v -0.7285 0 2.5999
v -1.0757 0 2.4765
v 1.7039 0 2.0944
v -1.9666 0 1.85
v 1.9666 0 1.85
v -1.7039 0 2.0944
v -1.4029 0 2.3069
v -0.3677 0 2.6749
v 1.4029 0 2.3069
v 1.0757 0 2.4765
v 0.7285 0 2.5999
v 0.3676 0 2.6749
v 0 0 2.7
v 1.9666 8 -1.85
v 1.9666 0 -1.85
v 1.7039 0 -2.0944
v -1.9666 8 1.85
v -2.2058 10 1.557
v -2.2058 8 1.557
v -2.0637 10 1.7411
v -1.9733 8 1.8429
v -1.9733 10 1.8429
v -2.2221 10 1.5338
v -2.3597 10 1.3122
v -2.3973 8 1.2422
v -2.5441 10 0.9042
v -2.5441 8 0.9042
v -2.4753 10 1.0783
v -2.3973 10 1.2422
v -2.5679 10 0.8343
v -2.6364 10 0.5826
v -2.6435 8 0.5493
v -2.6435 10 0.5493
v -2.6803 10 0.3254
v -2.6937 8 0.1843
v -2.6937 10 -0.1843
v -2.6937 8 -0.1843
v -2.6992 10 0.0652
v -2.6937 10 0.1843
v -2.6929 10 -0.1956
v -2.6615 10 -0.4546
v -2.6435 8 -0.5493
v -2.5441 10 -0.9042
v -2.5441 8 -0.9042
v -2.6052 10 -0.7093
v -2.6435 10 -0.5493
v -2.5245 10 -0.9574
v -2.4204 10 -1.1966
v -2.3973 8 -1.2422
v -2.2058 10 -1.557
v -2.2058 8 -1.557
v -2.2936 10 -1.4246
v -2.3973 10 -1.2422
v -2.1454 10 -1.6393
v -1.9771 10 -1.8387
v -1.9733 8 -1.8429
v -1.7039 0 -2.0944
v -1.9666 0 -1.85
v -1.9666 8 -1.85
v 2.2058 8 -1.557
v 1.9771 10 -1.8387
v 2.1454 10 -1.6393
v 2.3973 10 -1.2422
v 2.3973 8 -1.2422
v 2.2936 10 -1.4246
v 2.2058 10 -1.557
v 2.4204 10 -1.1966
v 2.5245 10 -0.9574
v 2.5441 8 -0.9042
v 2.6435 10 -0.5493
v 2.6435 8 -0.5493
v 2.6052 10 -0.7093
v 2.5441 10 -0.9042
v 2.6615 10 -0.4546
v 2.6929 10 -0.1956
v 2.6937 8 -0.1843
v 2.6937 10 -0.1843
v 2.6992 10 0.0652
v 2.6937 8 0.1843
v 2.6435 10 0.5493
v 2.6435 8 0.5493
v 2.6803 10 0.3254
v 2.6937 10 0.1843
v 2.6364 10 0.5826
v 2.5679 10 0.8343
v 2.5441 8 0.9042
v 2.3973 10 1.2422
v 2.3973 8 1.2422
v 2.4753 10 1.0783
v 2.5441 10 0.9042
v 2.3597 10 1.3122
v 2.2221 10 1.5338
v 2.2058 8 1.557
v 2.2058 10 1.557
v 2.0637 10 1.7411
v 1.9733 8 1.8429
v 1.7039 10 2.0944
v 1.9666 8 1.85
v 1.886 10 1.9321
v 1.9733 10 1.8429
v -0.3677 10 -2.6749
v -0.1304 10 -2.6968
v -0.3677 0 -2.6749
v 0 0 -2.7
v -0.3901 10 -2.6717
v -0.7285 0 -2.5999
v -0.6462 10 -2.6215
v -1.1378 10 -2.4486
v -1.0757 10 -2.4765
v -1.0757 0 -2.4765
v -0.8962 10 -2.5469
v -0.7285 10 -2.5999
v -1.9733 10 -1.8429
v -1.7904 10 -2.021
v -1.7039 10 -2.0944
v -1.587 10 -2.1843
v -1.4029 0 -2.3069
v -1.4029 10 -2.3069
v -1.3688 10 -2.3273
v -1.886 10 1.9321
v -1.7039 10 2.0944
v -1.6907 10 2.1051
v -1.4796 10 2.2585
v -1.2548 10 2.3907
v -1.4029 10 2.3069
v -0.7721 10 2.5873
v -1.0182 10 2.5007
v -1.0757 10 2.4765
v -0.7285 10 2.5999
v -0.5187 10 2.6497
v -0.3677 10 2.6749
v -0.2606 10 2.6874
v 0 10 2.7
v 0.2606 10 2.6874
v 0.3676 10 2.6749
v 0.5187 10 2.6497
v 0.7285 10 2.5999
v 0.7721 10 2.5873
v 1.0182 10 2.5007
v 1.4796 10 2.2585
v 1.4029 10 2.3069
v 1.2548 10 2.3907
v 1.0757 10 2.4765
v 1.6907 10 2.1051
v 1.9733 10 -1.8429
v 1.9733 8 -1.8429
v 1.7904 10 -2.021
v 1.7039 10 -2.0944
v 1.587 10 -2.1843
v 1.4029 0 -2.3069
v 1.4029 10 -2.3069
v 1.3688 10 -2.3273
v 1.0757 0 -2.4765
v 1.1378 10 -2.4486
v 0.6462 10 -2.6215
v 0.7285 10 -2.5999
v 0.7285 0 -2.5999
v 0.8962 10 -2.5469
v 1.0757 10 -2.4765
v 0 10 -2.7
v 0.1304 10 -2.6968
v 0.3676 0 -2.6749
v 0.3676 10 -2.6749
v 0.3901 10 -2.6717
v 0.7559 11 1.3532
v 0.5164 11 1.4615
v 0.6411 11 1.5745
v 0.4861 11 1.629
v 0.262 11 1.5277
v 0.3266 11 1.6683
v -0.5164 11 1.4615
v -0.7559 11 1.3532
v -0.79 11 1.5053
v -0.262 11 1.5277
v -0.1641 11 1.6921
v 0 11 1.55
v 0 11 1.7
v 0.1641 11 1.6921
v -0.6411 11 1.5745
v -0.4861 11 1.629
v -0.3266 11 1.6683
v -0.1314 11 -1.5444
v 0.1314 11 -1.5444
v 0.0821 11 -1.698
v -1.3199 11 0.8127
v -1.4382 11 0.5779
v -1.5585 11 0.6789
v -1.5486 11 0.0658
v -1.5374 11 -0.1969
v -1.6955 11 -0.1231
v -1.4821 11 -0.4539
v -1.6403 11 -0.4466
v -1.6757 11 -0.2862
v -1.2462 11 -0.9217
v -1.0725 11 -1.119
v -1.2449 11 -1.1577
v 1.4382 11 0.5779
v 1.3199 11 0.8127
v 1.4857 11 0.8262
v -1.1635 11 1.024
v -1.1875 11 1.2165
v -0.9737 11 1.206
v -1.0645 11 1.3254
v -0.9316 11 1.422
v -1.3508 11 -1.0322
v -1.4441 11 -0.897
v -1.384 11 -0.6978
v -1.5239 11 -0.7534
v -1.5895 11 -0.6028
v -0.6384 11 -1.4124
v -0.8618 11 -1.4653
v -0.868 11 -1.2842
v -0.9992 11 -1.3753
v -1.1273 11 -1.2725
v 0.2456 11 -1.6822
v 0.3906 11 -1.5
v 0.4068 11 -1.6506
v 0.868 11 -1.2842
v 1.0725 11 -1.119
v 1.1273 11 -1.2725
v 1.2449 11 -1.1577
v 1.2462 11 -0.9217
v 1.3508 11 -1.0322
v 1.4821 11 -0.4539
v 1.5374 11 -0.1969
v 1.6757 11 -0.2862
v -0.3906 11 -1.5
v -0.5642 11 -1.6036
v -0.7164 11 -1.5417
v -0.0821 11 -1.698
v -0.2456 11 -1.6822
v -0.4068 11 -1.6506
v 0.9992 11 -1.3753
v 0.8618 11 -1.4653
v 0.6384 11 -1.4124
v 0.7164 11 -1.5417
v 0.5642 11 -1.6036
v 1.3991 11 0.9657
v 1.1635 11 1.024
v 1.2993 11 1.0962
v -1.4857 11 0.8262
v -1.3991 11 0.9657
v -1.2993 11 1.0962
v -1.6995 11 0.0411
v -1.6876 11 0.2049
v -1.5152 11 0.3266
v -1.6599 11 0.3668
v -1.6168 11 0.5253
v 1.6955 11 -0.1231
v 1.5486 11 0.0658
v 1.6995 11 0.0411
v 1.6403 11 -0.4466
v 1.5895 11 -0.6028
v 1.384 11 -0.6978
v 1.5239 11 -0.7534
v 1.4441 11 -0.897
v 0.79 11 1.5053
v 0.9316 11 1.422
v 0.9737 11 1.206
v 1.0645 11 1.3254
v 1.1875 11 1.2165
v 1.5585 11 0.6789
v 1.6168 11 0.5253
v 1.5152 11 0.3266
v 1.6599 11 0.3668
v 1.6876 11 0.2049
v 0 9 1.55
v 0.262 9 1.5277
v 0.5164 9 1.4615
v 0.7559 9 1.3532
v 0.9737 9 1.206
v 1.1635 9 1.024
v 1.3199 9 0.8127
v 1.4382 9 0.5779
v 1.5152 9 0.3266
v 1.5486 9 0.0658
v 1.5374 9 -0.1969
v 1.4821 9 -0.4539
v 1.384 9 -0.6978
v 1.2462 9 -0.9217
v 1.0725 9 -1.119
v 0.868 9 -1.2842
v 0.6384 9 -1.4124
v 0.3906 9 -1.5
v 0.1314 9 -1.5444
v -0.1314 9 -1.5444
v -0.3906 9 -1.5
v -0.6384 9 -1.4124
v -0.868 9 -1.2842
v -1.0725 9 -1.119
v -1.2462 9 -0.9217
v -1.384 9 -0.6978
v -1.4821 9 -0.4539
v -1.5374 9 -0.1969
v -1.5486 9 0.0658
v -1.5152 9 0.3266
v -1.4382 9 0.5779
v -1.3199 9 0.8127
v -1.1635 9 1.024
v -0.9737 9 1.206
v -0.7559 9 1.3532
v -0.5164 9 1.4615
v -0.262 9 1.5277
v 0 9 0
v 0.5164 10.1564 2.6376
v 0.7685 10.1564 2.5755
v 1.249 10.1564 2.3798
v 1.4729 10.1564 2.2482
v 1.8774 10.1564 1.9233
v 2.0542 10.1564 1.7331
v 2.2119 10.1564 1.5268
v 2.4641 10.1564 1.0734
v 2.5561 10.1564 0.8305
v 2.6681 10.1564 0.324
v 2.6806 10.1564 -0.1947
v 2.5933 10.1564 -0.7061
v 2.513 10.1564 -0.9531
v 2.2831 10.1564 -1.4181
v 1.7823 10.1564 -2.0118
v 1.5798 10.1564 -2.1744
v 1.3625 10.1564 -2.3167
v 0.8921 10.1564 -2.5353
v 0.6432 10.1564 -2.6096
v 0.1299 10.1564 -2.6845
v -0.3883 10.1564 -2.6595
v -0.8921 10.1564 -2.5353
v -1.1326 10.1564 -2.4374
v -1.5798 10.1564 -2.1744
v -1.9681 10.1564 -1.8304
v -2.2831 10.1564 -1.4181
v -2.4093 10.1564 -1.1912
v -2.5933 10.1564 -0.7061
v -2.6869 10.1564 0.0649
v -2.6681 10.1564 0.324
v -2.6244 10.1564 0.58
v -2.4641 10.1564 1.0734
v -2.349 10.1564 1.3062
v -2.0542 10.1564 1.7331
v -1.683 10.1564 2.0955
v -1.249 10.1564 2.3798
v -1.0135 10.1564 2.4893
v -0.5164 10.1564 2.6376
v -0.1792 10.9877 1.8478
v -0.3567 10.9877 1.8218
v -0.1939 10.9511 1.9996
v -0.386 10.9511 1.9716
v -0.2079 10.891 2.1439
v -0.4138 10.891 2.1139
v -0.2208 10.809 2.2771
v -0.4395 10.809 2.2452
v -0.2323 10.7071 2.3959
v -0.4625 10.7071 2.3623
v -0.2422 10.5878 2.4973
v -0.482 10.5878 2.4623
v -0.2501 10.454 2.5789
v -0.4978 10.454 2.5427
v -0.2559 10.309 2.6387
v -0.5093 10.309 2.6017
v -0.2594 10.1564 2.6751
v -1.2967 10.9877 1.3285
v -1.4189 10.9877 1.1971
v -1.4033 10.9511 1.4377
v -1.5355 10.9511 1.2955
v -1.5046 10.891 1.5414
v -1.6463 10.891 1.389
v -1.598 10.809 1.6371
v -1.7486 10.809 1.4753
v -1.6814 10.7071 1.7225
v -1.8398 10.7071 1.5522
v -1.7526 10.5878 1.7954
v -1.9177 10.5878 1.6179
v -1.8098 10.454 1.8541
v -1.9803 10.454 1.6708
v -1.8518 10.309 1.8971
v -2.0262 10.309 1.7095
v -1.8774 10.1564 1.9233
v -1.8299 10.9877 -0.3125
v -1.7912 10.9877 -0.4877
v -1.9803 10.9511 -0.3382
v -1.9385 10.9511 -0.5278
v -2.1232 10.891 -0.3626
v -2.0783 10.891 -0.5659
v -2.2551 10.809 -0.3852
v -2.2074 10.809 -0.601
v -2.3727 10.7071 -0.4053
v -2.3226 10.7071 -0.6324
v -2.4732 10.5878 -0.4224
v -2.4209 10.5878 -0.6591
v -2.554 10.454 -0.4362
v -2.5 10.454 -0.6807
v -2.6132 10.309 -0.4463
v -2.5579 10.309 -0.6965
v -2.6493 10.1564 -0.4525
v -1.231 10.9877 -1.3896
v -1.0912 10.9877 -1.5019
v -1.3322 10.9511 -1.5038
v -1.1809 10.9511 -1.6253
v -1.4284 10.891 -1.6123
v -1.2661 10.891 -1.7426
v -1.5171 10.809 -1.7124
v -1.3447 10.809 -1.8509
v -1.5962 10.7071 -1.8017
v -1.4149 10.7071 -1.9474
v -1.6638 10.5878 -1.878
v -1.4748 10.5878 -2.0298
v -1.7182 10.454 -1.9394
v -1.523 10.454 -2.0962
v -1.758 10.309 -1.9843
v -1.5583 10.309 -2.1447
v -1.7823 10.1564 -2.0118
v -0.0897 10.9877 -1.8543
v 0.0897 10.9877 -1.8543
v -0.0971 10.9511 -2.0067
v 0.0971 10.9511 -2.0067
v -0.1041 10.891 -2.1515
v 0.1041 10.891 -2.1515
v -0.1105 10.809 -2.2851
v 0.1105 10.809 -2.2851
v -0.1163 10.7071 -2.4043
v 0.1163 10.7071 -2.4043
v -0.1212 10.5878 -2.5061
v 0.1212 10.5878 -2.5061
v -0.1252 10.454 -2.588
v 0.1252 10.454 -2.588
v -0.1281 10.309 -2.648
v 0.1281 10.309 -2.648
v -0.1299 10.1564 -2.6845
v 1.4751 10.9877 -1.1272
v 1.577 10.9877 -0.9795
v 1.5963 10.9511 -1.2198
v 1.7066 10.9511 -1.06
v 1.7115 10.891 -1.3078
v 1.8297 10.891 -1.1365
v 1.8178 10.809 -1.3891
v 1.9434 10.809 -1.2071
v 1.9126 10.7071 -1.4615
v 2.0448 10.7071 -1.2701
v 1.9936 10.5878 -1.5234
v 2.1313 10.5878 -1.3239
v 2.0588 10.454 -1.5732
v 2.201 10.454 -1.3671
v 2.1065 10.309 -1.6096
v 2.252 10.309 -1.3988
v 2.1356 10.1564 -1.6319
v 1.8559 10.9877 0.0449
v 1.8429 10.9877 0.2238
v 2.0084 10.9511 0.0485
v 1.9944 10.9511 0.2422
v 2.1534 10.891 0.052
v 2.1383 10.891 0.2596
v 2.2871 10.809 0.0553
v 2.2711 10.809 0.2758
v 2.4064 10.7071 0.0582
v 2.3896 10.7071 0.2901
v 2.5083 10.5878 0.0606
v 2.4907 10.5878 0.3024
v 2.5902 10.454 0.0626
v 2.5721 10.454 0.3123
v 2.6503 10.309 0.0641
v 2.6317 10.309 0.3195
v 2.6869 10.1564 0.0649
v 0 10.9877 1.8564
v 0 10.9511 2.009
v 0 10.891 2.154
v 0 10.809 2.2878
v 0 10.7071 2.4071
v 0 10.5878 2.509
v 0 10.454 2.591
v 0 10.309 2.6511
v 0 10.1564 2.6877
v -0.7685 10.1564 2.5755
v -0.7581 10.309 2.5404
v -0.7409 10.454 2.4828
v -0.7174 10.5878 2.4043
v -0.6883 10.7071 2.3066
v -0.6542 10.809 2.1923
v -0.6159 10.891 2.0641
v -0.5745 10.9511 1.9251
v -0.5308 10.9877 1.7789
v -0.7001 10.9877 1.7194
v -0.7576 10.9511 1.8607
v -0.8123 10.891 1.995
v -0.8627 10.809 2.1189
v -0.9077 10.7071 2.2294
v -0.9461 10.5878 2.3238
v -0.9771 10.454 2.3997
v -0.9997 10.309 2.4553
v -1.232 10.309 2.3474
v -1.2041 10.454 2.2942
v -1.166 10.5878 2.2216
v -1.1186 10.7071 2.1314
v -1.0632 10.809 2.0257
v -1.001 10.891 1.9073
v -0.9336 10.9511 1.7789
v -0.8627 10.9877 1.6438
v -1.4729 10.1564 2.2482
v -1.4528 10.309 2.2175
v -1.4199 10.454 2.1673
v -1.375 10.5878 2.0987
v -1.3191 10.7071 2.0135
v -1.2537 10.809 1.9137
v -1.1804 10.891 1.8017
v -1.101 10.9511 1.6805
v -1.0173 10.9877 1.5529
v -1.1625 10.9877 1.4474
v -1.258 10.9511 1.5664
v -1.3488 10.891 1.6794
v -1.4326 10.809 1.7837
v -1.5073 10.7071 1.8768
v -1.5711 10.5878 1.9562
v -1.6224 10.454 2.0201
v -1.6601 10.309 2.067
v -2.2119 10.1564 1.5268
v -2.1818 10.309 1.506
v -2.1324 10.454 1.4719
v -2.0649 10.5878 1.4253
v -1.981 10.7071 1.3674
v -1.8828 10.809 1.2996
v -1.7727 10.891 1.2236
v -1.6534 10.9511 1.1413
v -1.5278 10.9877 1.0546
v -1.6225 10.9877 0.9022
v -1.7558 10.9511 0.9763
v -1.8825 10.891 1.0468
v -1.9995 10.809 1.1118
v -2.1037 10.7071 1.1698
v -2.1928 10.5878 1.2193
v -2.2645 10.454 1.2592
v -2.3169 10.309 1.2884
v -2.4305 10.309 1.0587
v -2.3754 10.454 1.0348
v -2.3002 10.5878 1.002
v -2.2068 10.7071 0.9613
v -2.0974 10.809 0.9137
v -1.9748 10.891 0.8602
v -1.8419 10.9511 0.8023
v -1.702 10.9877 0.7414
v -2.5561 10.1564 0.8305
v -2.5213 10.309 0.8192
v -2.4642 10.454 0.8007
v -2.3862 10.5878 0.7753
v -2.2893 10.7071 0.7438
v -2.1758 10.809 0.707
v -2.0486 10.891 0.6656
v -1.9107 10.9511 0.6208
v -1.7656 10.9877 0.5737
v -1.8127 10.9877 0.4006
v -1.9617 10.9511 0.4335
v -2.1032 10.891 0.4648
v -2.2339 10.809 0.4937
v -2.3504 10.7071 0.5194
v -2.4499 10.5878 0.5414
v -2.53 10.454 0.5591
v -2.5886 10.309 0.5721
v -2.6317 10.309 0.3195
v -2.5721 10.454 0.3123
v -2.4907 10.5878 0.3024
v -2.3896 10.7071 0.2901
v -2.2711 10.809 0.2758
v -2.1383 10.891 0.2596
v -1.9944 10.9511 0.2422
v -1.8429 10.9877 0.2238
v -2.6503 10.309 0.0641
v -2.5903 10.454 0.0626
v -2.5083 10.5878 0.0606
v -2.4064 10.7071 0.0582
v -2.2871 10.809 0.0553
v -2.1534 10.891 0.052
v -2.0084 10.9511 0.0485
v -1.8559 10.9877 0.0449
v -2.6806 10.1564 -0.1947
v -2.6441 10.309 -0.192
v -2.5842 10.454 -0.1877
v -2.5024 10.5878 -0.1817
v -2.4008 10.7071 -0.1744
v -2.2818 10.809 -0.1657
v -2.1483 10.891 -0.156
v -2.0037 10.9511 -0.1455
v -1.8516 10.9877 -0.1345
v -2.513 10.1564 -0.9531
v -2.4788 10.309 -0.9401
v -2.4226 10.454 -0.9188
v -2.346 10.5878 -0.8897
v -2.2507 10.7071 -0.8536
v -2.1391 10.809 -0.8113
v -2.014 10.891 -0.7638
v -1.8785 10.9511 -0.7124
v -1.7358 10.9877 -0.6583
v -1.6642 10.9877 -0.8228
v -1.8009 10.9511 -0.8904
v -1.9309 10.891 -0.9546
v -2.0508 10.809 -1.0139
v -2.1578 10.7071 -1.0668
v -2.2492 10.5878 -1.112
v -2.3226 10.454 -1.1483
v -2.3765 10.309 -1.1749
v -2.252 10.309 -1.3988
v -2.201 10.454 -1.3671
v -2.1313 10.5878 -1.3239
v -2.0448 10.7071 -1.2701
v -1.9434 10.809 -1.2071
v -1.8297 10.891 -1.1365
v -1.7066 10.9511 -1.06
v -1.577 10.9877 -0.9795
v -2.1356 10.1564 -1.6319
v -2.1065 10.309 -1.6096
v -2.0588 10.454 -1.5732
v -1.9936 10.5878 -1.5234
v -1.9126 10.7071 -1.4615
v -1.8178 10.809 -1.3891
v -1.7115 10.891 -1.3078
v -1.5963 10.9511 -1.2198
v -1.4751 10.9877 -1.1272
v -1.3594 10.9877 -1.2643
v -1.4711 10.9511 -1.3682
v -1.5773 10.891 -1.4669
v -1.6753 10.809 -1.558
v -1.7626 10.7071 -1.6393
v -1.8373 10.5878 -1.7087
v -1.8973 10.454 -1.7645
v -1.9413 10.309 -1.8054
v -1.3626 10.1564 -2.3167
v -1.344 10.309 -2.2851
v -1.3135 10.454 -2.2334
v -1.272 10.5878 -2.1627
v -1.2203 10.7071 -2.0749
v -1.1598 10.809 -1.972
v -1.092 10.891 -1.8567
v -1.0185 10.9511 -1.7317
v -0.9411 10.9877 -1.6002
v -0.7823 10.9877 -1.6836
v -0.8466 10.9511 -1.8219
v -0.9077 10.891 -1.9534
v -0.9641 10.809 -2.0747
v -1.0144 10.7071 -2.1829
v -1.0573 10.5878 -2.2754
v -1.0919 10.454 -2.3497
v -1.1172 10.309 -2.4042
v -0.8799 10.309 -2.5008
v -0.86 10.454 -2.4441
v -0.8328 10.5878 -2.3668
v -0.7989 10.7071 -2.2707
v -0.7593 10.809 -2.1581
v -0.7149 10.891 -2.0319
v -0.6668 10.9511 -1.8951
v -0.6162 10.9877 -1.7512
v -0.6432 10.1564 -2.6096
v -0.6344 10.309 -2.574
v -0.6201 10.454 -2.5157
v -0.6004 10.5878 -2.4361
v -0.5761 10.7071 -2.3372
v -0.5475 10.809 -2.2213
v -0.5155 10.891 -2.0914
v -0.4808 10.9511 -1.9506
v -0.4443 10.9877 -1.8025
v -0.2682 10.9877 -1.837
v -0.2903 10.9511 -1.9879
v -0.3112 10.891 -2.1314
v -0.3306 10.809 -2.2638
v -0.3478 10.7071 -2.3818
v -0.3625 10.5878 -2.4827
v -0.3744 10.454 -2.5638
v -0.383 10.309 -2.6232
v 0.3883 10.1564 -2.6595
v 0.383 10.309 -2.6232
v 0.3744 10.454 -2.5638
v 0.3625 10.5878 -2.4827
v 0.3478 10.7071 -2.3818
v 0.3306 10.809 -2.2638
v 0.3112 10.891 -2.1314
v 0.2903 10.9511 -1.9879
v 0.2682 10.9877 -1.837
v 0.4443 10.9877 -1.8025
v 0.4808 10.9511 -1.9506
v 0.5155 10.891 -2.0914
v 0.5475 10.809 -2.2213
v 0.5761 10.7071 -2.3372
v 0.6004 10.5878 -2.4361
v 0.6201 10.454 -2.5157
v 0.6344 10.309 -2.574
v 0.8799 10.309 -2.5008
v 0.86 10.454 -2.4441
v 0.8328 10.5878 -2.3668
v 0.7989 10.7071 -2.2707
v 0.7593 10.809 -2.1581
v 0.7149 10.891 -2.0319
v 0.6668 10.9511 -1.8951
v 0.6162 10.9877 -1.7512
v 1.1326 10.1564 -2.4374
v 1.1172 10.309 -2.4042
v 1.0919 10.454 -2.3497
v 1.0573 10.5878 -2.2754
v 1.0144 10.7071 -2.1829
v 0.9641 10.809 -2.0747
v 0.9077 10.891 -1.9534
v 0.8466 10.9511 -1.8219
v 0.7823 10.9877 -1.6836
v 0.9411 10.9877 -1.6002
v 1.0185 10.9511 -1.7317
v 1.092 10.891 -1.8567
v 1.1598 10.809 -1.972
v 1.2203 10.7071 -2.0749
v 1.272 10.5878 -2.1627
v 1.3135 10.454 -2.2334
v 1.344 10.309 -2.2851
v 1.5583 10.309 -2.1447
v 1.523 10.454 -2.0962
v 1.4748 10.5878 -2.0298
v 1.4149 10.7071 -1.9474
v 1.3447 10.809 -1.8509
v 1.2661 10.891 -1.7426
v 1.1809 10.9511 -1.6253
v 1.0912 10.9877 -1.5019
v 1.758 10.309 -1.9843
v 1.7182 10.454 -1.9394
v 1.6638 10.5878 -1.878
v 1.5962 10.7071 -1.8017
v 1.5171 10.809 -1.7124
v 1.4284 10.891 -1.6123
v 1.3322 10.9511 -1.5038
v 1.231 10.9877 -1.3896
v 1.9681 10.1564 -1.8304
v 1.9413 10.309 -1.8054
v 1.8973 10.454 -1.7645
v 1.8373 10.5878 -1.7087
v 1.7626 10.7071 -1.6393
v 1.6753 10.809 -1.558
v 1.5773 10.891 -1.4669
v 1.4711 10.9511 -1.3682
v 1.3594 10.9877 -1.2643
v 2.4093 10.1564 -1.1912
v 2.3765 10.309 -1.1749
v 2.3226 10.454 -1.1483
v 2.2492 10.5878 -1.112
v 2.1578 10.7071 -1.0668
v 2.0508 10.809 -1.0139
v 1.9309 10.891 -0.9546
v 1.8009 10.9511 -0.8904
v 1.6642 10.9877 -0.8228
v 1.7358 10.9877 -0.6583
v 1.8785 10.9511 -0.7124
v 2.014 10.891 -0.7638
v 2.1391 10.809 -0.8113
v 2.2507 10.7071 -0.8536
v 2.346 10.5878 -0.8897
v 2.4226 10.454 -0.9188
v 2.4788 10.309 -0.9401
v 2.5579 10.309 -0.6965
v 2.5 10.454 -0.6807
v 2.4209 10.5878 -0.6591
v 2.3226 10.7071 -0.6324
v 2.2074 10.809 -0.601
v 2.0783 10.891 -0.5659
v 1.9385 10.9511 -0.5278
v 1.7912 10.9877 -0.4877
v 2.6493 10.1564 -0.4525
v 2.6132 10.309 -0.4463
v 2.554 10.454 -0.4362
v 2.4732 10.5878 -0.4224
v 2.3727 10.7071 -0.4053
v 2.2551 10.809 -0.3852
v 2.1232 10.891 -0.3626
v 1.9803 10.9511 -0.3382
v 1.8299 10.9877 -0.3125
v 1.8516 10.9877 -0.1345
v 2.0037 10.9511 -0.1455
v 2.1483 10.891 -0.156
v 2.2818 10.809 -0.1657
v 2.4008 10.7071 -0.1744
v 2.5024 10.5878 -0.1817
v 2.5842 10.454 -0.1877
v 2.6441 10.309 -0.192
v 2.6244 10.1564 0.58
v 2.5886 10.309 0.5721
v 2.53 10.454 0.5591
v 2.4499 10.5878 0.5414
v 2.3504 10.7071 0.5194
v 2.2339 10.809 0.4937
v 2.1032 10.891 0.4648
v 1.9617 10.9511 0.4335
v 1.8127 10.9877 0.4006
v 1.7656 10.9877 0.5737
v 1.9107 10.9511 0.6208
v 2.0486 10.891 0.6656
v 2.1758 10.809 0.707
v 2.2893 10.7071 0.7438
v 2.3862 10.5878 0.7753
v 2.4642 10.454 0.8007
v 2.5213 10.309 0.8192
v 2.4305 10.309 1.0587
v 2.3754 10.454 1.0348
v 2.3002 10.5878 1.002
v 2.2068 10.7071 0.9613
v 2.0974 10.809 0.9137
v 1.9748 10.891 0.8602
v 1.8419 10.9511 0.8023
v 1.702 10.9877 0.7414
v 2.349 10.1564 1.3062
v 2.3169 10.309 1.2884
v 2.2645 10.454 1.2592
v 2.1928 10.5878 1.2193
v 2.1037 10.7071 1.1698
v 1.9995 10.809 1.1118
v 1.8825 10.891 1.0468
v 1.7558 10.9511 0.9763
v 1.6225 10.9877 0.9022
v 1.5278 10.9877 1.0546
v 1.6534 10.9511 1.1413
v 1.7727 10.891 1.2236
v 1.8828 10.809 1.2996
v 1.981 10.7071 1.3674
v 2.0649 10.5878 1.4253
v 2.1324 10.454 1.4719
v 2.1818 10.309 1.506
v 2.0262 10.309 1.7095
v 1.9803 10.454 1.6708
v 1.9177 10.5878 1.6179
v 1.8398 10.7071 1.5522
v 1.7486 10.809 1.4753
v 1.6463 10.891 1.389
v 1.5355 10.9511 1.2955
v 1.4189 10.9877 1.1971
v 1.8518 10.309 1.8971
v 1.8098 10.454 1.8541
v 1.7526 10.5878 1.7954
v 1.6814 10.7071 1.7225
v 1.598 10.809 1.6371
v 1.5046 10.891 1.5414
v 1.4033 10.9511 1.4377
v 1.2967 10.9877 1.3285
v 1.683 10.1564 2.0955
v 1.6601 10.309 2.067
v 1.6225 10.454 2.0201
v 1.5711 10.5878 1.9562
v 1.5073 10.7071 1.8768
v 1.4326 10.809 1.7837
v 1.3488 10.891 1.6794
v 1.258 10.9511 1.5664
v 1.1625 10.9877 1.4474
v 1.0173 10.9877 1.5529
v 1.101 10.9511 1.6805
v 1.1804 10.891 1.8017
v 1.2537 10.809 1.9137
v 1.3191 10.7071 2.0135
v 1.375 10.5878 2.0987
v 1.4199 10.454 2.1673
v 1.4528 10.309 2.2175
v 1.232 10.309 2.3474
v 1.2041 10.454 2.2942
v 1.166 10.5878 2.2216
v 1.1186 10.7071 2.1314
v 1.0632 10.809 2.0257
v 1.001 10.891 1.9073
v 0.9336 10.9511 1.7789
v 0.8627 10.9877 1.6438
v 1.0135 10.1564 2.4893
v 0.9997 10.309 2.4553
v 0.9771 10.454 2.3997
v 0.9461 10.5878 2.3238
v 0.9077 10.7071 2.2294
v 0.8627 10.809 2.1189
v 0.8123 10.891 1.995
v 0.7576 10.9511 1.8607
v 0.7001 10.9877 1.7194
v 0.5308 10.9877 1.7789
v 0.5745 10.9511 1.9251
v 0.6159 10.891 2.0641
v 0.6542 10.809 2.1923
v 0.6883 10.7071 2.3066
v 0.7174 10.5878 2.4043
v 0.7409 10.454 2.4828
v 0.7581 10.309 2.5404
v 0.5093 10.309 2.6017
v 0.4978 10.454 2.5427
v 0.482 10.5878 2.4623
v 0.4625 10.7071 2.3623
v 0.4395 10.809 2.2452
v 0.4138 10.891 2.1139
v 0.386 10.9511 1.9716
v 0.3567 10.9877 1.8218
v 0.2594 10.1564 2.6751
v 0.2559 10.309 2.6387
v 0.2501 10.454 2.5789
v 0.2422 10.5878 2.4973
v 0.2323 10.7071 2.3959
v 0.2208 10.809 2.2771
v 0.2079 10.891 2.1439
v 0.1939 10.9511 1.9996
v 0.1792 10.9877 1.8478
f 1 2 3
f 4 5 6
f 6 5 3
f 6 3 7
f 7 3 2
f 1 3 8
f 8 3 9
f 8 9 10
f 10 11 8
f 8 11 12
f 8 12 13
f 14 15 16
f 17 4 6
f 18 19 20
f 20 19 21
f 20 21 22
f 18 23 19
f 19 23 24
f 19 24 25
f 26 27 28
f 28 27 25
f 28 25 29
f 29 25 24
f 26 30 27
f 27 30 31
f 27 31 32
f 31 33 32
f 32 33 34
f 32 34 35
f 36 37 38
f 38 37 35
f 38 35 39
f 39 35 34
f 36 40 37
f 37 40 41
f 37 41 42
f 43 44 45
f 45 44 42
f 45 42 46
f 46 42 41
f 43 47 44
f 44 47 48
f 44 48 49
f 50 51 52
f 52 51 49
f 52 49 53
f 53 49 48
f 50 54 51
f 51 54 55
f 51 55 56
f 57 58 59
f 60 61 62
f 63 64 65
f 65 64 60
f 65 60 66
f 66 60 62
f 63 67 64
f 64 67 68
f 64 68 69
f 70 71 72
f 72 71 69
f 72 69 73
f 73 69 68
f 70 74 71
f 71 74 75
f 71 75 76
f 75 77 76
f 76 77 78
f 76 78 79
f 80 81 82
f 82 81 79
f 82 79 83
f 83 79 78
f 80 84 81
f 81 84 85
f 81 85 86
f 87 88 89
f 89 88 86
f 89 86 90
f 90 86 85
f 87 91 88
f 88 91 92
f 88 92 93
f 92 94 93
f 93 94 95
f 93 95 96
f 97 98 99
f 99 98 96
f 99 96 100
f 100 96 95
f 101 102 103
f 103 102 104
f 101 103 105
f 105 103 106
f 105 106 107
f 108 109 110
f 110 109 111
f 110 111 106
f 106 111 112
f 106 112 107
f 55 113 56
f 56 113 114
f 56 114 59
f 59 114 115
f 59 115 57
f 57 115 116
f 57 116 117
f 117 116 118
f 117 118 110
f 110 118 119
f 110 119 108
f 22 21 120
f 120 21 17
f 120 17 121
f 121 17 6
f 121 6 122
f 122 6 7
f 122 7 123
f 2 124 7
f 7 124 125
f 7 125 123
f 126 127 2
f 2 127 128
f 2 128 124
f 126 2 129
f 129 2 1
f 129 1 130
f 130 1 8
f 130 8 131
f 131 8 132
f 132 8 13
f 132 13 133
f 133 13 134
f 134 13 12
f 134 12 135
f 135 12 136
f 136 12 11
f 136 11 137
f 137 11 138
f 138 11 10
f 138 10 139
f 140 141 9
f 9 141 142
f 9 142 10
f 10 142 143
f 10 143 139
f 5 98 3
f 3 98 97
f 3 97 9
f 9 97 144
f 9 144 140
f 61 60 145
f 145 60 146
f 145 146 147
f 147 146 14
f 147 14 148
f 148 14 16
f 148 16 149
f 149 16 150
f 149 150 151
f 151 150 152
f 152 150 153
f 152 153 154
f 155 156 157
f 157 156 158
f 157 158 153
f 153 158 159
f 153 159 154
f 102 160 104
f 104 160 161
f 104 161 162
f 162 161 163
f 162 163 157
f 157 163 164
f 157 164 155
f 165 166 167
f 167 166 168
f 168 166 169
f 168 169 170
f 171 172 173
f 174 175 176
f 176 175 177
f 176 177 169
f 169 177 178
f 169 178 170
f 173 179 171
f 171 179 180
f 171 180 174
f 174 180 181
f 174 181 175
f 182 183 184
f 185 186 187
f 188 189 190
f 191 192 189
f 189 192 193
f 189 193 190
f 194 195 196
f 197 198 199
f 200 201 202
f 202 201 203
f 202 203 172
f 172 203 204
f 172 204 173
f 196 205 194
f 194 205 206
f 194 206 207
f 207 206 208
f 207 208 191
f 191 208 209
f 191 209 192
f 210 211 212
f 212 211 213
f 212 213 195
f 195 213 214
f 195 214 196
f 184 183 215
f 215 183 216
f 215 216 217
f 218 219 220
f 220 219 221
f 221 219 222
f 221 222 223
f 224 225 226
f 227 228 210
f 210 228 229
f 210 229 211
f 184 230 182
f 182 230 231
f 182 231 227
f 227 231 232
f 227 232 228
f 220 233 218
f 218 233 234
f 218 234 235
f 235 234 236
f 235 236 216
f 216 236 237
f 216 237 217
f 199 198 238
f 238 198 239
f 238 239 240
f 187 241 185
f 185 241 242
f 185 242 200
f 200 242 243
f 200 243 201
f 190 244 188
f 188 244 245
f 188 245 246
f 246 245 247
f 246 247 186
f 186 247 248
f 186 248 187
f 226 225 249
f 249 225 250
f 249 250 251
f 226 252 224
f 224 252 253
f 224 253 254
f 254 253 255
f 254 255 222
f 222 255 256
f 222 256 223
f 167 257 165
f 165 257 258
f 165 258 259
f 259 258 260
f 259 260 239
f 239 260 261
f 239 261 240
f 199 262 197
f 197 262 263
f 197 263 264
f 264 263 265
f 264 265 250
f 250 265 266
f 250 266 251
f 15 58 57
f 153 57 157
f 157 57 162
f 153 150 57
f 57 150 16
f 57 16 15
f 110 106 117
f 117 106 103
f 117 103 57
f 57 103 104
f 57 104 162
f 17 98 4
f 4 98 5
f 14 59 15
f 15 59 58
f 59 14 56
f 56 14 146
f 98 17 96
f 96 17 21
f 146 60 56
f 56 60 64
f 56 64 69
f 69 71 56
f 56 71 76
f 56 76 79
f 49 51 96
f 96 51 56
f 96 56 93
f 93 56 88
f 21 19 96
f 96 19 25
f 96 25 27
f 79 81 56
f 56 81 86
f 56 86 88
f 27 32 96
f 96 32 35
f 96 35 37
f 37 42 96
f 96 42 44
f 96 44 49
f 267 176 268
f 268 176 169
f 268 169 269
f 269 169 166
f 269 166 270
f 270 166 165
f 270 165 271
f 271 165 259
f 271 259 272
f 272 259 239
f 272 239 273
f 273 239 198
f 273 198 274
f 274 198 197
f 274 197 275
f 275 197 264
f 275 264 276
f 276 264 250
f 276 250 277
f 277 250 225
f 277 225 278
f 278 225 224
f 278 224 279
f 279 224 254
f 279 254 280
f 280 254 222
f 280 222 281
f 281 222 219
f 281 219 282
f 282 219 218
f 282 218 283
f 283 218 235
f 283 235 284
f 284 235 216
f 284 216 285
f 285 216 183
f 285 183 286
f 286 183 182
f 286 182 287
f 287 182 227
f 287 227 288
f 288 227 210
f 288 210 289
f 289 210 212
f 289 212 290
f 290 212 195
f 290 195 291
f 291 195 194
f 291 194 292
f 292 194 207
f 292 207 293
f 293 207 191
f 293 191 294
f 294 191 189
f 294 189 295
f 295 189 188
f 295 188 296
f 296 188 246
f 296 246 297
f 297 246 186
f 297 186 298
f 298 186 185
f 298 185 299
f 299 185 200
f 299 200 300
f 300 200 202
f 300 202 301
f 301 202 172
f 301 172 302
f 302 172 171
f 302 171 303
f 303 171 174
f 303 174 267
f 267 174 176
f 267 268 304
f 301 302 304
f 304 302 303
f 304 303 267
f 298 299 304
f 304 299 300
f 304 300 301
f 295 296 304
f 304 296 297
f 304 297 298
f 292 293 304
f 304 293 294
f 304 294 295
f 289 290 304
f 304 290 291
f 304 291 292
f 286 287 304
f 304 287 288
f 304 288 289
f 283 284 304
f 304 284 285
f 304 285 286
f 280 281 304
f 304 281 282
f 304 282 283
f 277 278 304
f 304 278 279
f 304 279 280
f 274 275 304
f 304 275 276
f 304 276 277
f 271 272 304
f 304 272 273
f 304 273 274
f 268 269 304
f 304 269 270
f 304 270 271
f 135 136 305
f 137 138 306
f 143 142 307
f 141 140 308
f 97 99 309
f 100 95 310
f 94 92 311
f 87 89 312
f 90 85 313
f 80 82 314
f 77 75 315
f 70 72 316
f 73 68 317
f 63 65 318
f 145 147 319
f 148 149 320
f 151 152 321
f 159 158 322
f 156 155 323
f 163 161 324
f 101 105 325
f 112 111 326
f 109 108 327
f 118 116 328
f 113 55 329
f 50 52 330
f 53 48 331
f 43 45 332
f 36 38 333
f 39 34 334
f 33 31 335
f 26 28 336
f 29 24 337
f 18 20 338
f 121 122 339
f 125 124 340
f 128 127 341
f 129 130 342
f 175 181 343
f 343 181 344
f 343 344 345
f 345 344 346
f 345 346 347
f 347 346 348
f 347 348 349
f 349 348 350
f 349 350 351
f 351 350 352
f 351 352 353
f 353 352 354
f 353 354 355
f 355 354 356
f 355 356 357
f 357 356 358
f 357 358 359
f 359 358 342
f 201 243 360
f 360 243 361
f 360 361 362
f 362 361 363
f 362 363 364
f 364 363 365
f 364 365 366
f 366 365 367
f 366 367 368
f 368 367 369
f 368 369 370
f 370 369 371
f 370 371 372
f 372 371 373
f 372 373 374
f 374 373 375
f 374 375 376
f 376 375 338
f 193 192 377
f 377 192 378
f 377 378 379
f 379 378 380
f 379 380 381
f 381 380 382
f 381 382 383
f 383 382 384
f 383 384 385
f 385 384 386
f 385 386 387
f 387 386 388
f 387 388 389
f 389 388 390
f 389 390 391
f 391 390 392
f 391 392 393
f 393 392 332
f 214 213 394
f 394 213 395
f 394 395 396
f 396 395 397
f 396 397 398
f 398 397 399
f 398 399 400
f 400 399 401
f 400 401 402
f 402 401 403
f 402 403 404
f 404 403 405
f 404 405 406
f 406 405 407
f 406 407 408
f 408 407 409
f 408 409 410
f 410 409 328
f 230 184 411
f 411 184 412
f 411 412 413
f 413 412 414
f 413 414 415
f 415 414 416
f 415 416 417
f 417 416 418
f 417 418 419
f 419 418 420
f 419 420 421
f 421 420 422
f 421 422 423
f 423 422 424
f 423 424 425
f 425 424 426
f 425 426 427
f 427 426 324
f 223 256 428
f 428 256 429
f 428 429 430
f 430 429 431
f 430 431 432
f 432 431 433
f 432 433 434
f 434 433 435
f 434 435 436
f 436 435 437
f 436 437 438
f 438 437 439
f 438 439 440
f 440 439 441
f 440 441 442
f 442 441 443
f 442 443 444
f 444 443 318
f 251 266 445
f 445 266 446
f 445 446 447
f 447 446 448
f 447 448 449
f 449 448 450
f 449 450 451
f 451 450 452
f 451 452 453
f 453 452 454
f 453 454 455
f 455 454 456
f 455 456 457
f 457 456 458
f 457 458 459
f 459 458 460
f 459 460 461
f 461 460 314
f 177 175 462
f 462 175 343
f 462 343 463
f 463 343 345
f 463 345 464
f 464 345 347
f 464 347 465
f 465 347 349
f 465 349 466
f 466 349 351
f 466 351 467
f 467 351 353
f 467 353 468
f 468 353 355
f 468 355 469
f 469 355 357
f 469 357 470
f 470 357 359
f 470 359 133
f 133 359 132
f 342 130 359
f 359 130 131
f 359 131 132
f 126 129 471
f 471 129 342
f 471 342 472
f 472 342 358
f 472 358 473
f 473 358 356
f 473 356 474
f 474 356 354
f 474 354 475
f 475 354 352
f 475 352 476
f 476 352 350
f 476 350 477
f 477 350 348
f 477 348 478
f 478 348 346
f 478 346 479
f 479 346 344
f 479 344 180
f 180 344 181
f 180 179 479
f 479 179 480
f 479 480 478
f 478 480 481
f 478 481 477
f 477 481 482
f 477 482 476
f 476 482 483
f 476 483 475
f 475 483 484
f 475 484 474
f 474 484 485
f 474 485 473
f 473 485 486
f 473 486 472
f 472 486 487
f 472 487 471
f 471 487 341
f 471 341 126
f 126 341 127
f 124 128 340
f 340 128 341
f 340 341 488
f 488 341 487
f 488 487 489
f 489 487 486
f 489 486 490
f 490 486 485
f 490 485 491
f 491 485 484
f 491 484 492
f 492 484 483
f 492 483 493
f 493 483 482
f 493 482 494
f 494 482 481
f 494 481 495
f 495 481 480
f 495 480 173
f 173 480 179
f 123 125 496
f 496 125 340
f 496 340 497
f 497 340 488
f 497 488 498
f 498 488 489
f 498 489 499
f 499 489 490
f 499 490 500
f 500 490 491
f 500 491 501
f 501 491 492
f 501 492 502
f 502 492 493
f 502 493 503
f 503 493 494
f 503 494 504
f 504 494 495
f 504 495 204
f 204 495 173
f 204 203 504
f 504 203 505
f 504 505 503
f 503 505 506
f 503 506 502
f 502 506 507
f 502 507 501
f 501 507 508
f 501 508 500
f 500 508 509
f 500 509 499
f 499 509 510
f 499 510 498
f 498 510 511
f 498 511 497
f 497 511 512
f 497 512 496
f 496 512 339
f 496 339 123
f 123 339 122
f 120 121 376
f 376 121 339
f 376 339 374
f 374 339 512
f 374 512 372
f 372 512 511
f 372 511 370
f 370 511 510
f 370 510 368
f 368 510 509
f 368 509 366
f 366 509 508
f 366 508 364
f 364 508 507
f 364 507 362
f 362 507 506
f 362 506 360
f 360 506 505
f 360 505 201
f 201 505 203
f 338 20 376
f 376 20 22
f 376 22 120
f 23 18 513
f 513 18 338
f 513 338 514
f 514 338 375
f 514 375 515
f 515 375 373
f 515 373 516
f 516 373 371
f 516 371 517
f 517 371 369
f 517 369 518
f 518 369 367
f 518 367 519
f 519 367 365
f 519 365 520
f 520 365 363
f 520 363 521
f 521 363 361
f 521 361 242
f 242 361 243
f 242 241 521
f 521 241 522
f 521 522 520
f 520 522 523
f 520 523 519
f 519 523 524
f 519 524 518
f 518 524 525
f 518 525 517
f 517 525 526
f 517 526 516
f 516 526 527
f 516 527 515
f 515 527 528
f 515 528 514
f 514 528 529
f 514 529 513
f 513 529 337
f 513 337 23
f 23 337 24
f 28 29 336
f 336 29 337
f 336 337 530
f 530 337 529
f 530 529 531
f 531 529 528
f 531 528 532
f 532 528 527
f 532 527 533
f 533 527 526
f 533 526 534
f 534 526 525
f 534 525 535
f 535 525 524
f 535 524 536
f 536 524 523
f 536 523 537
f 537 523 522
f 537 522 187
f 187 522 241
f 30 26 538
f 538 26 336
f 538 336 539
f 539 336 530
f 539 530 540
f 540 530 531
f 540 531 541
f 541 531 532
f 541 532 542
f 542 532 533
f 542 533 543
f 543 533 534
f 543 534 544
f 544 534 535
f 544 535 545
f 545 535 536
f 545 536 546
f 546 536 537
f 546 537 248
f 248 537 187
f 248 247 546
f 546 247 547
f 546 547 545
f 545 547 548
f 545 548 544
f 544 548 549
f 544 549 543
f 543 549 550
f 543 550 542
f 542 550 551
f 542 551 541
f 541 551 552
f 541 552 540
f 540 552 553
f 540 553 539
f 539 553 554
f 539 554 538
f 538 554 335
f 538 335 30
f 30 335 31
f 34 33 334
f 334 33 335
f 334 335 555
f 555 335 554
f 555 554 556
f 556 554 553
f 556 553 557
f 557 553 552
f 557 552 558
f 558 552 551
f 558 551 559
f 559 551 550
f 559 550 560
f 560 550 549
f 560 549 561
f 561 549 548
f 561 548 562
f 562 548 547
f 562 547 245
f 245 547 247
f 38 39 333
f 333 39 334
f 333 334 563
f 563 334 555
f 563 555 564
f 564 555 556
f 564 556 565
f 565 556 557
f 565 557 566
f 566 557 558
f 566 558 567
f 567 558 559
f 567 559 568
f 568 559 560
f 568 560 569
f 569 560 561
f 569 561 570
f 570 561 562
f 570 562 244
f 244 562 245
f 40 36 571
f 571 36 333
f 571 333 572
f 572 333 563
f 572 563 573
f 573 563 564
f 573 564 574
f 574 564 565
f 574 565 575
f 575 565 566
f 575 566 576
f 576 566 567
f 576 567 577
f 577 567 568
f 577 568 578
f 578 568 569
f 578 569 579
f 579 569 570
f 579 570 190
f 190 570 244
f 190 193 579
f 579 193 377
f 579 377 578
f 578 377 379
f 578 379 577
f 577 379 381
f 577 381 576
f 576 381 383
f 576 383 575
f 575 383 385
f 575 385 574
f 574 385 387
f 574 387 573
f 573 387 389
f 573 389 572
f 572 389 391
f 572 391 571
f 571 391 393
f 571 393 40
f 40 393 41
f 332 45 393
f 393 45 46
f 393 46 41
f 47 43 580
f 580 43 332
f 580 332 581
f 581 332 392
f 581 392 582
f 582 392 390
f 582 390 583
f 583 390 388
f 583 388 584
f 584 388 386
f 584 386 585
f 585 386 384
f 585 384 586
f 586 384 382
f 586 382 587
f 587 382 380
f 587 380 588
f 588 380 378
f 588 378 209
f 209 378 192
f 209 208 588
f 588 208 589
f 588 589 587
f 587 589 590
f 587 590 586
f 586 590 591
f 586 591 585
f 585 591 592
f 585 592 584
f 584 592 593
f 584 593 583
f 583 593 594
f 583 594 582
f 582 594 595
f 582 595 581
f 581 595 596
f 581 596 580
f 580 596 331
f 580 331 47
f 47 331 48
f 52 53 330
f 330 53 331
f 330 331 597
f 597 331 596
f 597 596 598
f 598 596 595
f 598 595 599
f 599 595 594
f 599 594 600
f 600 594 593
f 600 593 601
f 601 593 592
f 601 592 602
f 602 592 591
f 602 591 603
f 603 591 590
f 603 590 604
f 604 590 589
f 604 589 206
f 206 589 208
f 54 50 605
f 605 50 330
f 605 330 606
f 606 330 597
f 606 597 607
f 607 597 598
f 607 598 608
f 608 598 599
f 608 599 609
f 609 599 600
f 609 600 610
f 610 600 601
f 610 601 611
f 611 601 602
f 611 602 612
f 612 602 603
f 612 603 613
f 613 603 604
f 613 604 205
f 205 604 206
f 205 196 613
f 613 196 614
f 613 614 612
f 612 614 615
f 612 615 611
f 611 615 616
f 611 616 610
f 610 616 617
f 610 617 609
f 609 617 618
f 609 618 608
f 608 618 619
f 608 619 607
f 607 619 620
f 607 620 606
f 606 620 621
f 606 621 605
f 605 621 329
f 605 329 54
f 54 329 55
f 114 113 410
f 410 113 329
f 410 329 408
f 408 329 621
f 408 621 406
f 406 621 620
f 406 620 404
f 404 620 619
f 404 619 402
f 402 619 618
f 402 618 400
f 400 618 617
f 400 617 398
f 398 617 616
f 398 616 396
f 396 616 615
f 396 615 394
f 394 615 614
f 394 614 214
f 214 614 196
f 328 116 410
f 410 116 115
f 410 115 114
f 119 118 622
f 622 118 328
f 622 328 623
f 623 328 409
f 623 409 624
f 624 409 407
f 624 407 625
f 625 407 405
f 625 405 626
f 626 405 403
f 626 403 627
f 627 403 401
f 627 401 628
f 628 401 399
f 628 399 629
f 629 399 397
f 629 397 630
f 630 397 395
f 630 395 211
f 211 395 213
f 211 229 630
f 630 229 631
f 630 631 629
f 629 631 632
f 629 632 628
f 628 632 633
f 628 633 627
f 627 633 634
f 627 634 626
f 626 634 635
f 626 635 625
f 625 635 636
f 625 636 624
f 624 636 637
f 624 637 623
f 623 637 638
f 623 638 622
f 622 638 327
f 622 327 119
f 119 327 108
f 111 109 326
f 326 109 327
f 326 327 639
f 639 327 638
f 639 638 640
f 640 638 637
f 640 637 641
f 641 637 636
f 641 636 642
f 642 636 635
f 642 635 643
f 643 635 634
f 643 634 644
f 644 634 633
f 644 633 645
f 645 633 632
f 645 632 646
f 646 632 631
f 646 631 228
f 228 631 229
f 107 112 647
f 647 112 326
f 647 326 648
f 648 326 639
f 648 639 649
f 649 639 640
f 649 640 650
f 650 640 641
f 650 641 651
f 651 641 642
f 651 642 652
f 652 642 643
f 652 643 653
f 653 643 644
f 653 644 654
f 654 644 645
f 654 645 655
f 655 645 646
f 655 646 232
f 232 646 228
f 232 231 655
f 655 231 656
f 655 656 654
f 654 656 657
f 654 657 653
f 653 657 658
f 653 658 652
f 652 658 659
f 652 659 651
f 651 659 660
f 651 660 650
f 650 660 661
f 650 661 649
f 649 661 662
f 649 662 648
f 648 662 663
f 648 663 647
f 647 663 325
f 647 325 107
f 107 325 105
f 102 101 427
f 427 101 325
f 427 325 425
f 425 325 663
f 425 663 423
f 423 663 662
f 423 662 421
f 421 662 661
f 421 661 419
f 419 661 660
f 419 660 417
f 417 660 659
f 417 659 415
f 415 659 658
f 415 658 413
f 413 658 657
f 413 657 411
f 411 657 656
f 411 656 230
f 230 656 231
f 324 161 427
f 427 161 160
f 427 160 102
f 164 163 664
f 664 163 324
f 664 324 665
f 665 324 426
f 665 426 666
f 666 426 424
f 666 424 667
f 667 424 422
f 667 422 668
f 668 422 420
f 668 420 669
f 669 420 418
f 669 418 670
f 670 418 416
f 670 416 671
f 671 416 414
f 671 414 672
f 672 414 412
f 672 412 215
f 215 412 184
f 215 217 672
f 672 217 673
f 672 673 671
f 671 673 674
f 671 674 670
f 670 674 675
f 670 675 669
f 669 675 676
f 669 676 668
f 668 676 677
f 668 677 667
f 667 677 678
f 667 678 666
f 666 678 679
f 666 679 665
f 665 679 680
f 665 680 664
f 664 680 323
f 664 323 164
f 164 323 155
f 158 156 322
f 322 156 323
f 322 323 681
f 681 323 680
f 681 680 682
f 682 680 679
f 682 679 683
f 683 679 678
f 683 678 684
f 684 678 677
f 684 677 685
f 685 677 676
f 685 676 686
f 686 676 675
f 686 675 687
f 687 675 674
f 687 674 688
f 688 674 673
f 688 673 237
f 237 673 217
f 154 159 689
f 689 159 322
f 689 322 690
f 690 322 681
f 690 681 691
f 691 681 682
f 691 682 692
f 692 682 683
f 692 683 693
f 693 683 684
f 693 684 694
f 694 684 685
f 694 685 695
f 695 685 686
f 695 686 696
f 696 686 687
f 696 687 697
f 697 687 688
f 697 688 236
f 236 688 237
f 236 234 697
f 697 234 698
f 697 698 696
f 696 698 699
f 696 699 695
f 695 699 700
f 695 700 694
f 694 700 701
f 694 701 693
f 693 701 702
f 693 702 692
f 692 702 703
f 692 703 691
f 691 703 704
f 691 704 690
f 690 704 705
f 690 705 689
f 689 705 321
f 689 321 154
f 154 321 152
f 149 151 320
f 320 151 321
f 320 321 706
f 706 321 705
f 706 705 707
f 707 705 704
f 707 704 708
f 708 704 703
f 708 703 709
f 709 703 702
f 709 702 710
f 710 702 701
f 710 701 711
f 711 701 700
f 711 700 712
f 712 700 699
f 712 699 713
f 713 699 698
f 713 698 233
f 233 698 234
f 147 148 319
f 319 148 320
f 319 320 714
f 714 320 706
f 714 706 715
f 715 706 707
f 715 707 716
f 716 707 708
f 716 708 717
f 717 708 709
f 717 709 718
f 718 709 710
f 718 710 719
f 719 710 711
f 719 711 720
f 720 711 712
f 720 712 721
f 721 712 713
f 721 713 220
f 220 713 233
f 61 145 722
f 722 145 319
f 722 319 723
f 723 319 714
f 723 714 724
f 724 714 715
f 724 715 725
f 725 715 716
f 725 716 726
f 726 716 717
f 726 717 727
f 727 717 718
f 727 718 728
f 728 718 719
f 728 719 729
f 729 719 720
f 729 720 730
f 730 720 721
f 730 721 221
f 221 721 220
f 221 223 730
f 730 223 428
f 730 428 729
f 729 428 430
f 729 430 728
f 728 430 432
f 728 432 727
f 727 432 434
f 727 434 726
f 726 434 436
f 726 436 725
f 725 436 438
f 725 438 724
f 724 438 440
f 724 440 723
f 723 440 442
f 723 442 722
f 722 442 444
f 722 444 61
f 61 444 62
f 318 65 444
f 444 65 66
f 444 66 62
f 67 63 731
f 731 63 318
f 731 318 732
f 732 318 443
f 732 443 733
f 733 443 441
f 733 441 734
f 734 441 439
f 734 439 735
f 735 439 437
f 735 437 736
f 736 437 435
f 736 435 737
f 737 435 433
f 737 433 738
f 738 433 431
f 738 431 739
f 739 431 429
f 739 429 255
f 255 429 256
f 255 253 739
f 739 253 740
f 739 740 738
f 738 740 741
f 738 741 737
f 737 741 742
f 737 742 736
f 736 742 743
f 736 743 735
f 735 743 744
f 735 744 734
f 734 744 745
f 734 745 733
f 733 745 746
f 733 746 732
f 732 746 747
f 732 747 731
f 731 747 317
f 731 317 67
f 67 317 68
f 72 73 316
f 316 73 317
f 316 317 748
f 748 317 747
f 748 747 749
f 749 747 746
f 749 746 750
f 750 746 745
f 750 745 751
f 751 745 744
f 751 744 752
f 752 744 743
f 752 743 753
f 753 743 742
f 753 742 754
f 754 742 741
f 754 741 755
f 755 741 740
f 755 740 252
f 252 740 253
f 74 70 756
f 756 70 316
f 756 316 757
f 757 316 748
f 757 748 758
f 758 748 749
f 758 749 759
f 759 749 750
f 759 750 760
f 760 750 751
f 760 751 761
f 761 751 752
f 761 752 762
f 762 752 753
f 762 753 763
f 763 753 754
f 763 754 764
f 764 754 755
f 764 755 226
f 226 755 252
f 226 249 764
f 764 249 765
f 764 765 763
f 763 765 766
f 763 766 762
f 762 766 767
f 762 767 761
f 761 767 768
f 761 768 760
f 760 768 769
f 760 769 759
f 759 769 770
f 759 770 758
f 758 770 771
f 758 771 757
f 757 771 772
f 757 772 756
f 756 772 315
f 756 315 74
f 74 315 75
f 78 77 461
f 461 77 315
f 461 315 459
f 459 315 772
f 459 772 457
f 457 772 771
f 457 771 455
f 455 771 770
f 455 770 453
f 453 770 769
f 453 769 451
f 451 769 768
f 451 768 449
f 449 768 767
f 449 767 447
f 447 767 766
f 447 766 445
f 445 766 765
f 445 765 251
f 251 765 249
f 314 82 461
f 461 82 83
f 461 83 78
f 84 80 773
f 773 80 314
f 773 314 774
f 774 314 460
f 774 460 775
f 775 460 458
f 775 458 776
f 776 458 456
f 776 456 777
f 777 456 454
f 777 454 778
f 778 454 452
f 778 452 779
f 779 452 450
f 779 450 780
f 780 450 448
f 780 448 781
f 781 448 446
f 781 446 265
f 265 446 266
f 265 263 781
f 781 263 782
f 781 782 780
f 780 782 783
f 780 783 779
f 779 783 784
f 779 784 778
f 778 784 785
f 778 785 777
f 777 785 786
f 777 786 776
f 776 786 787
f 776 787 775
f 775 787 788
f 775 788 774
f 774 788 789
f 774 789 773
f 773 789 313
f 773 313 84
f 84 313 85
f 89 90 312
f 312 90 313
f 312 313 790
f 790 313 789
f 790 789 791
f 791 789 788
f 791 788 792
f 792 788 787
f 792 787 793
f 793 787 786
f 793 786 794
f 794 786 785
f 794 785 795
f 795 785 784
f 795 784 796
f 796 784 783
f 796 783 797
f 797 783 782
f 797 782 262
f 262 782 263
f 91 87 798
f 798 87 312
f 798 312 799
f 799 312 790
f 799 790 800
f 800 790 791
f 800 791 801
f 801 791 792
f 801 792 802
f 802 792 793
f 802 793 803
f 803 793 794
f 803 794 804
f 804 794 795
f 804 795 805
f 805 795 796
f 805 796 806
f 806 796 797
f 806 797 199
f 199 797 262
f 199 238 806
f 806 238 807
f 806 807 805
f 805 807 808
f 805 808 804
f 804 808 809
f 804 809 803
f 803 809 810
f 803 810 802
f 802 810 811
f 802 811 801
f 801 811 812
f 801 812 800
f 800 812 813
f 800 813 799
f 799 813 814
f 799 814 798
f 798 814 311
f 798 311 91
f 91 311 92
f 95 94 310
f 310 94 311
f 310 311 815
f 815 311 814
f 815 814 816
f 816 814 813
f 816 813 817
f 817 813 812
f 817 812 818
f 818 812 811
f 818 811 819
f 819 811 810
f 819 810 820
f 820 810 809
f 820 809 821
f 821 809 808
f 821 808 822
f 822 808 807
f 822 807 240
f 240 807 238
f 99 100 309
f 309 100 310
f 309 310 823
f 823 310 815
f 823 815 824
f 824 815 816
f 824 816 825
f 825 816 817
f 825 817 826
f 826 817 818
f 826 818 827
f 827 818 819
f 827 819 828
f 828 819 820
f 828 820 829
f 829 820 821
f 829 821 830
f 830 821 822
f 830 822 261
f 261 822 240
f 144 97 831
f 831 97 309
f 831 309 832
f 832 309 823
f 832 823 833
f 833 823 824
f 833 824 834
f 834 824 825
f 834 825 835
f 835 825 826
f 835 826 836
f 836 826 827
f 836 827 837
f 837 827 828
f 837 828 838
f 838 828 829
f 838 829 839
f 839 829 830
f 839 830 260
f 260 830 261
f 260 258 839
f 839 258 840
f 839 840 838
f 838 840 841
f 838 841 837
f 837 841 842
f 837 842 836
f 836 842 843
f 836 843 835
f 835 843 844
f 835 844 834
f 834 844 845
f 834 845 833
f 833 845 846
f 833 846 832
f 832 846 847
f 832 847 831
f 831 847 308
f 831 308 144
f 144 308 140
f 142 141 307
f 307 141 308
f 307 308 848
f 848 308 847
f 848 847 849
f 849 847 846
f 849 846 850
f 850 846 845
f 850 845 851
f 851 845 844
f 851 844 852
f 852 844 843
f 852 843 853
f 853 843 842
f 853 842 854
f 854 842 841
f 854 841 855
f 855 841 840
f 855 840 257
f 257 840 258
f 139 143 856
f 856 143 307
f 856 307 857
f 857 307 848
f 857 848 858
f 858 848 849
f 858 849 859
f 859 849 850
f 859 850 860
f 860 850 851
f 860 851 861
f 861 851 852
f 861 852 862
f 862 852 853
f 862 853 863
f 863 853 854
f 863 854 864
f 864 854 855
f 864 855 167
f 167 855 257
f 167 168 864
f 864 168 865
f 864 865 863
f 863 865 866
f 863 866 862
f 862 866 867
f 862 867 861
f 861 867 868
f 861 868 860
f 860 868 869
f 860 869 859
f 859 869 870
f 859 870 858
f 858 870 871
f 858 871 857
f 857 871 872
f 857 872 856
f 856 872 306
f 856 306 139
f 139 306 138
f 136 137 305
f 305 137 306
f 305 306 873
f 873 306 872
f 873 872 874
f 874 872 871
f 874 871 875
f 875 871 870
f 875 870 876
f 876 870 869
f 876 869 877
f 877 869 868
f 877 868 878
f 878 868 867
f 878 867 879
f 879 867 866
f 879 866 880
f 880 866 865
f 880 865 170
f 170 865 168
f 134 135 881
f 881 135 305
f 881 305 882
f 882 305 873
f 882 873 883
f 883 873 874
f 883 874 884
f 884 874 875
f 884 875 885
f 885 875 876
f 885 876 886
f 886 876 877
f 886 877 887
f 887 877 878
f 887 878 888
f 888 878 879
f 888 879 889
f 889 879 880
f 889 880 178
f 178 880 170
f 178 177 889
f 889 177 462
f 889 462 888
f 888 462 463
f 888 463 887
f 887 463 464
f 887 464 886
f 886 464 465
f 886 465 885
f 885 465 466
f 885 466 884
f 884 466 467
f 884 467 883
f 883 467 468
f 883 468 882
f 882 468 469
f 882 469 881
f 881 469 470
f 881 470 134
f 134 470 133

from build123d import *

# Parameters (mm, degrees)
SKETCH1_R           = 2.7
BOSS_EXTRUDE1_DEPTH = 11
CUT_EXTRUDE1_DEPTH  = 8
SKETCH3_R           = 1.55
CUT_EXTRUDE2_DEPTH  = 2
FILLET1_R           = 1


with BuildPart() as part:
    # Sketch1 → Boss-Extrude1 (new body)
    with BuildSketch(Plane(origin=(0, 0, 0), x_dir=(1, 0, 0), z_dir=(0, 1, 0))):
        with Locations(Location((0, 0, 0), (0, 0, 270))):
            Circle(SKETCH1_R)
    extrude(amount=BOSS_EXTRUDE1_DEPTH)

    # Sketch2 → Cut-Extrude1 (cut)
    with BuildSketch(Plane.XZ):
        with BuildLine():
            Line((1.966596044, 1.85), (-1.966596044, 1.85))
            ThreePointArc((-1.966596044, 1.85), (-2.7, 0), (-1.966596044, -1.85))
            Line((-1.966596044, -1.85), (1.966596044, -1.85))
            ThreePointArc((1.966596044, -1.85), (2.7, 0), (1.966596044, 1.85))
        make_face()
    extrude(amount=-CUT_EXTRUDE1_DEPTH, mode=Mode.SUBTRACT)

    # Sketch3 → Cut-Extrude2 (cut)
    with BuildSketch(Plane(origin=(0, 11, 0), x_dir=(1, 0, 0), z_dir=(0, 1, 0))):
        with Locations(Location((0, 0, 0), (0, 0, 270))):
            Circle(SKETCH3_R)
    extrude(amount=-CUT_EXTRUDE2_DEPTH, mode=Mode.SUBTRACT)

    # Fillet1
    fillet1_edges = [part.edges().sort_by_distance(p)[0] for p in [
        (0, 11, -2.7),
    ]]
    fillet(fillet1_edges, radius=FILLET1_R)


solid = part.part
